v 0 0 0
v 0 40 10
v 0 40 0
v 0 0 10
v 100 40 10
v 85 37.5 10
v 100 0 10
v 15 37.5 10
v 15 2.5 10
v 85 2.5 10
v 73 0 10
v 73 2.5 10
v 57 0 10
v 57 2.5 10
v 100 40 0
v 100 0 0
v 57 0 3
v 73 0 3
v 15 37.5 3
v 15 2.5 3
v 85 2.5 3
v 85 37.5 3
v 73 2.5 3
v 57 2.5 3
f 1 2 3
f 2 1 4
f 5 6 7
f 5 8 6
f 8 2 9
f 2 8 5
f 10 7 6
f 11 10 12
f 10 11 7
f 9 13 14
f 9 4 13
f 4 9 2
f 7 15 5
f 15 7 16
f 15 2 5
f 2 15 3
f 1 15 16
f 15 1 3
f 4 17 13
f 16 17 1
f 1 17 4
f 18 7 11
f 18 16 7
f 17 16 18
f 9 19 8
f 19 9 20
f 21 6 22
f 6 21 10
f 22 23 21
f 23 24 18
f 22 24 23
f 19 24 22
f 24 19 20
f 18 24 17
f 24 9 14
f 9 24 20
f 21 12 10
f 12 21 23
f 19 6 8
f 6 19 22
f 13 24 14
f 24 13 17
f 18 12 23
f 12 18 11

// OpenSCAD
// file: globals.scad
// General
total_x = 10;
total_y = 10;
total_z = 10;
filler = 0.01;
screw_r = 0.1;
screw_h = 2;
elevation_deg = 18.5;
plexi_thickness = 0.2;

// For Base
b_overall_z = 0.1;
b_legfit_z = 0.6;
b_legspace = 3.5 + 0.5;
b_armspace_z = 3.5;
base_head_fit_1 = 2;
base_head_fit_2 = 3;
base_total_z = b_armspace_z + b_legfit_z;

// For Top
top_total_y = (total_y * cos(elevation_deg)) + 1;

// For Face
face_total_y = b_legspace;
face_total_z = total_z - (base_total_z + filler);

// For Battery Holder
bh_y = 5;
bh_z = 2.9;

// For RasPI Holder
raspi_total_y = 4;
raspi_total_z = 1;

// For backmost part
bp_total_y = total_y - (b_legspace + filler + bh_y + filler);
bp_total_z = 7;
// main file
include <globals.scad>

module raspi_case(x, y, z) {
    difference() {
        cube([x, y, z]);
        translate([(x-7) / 2, (y-3.5) / 2, 0.3]) cube([7, 3.5, z]);
        translate([(x-7) / 2 + 4.2, -0.1, 0.3]) cube([1.6, 3.5, 1]);
    }
}

$fn=300;
scale([10, 10, 10]) raspi_case(x=total_x, y=raspi_total_y, z=raspi_total_z);
